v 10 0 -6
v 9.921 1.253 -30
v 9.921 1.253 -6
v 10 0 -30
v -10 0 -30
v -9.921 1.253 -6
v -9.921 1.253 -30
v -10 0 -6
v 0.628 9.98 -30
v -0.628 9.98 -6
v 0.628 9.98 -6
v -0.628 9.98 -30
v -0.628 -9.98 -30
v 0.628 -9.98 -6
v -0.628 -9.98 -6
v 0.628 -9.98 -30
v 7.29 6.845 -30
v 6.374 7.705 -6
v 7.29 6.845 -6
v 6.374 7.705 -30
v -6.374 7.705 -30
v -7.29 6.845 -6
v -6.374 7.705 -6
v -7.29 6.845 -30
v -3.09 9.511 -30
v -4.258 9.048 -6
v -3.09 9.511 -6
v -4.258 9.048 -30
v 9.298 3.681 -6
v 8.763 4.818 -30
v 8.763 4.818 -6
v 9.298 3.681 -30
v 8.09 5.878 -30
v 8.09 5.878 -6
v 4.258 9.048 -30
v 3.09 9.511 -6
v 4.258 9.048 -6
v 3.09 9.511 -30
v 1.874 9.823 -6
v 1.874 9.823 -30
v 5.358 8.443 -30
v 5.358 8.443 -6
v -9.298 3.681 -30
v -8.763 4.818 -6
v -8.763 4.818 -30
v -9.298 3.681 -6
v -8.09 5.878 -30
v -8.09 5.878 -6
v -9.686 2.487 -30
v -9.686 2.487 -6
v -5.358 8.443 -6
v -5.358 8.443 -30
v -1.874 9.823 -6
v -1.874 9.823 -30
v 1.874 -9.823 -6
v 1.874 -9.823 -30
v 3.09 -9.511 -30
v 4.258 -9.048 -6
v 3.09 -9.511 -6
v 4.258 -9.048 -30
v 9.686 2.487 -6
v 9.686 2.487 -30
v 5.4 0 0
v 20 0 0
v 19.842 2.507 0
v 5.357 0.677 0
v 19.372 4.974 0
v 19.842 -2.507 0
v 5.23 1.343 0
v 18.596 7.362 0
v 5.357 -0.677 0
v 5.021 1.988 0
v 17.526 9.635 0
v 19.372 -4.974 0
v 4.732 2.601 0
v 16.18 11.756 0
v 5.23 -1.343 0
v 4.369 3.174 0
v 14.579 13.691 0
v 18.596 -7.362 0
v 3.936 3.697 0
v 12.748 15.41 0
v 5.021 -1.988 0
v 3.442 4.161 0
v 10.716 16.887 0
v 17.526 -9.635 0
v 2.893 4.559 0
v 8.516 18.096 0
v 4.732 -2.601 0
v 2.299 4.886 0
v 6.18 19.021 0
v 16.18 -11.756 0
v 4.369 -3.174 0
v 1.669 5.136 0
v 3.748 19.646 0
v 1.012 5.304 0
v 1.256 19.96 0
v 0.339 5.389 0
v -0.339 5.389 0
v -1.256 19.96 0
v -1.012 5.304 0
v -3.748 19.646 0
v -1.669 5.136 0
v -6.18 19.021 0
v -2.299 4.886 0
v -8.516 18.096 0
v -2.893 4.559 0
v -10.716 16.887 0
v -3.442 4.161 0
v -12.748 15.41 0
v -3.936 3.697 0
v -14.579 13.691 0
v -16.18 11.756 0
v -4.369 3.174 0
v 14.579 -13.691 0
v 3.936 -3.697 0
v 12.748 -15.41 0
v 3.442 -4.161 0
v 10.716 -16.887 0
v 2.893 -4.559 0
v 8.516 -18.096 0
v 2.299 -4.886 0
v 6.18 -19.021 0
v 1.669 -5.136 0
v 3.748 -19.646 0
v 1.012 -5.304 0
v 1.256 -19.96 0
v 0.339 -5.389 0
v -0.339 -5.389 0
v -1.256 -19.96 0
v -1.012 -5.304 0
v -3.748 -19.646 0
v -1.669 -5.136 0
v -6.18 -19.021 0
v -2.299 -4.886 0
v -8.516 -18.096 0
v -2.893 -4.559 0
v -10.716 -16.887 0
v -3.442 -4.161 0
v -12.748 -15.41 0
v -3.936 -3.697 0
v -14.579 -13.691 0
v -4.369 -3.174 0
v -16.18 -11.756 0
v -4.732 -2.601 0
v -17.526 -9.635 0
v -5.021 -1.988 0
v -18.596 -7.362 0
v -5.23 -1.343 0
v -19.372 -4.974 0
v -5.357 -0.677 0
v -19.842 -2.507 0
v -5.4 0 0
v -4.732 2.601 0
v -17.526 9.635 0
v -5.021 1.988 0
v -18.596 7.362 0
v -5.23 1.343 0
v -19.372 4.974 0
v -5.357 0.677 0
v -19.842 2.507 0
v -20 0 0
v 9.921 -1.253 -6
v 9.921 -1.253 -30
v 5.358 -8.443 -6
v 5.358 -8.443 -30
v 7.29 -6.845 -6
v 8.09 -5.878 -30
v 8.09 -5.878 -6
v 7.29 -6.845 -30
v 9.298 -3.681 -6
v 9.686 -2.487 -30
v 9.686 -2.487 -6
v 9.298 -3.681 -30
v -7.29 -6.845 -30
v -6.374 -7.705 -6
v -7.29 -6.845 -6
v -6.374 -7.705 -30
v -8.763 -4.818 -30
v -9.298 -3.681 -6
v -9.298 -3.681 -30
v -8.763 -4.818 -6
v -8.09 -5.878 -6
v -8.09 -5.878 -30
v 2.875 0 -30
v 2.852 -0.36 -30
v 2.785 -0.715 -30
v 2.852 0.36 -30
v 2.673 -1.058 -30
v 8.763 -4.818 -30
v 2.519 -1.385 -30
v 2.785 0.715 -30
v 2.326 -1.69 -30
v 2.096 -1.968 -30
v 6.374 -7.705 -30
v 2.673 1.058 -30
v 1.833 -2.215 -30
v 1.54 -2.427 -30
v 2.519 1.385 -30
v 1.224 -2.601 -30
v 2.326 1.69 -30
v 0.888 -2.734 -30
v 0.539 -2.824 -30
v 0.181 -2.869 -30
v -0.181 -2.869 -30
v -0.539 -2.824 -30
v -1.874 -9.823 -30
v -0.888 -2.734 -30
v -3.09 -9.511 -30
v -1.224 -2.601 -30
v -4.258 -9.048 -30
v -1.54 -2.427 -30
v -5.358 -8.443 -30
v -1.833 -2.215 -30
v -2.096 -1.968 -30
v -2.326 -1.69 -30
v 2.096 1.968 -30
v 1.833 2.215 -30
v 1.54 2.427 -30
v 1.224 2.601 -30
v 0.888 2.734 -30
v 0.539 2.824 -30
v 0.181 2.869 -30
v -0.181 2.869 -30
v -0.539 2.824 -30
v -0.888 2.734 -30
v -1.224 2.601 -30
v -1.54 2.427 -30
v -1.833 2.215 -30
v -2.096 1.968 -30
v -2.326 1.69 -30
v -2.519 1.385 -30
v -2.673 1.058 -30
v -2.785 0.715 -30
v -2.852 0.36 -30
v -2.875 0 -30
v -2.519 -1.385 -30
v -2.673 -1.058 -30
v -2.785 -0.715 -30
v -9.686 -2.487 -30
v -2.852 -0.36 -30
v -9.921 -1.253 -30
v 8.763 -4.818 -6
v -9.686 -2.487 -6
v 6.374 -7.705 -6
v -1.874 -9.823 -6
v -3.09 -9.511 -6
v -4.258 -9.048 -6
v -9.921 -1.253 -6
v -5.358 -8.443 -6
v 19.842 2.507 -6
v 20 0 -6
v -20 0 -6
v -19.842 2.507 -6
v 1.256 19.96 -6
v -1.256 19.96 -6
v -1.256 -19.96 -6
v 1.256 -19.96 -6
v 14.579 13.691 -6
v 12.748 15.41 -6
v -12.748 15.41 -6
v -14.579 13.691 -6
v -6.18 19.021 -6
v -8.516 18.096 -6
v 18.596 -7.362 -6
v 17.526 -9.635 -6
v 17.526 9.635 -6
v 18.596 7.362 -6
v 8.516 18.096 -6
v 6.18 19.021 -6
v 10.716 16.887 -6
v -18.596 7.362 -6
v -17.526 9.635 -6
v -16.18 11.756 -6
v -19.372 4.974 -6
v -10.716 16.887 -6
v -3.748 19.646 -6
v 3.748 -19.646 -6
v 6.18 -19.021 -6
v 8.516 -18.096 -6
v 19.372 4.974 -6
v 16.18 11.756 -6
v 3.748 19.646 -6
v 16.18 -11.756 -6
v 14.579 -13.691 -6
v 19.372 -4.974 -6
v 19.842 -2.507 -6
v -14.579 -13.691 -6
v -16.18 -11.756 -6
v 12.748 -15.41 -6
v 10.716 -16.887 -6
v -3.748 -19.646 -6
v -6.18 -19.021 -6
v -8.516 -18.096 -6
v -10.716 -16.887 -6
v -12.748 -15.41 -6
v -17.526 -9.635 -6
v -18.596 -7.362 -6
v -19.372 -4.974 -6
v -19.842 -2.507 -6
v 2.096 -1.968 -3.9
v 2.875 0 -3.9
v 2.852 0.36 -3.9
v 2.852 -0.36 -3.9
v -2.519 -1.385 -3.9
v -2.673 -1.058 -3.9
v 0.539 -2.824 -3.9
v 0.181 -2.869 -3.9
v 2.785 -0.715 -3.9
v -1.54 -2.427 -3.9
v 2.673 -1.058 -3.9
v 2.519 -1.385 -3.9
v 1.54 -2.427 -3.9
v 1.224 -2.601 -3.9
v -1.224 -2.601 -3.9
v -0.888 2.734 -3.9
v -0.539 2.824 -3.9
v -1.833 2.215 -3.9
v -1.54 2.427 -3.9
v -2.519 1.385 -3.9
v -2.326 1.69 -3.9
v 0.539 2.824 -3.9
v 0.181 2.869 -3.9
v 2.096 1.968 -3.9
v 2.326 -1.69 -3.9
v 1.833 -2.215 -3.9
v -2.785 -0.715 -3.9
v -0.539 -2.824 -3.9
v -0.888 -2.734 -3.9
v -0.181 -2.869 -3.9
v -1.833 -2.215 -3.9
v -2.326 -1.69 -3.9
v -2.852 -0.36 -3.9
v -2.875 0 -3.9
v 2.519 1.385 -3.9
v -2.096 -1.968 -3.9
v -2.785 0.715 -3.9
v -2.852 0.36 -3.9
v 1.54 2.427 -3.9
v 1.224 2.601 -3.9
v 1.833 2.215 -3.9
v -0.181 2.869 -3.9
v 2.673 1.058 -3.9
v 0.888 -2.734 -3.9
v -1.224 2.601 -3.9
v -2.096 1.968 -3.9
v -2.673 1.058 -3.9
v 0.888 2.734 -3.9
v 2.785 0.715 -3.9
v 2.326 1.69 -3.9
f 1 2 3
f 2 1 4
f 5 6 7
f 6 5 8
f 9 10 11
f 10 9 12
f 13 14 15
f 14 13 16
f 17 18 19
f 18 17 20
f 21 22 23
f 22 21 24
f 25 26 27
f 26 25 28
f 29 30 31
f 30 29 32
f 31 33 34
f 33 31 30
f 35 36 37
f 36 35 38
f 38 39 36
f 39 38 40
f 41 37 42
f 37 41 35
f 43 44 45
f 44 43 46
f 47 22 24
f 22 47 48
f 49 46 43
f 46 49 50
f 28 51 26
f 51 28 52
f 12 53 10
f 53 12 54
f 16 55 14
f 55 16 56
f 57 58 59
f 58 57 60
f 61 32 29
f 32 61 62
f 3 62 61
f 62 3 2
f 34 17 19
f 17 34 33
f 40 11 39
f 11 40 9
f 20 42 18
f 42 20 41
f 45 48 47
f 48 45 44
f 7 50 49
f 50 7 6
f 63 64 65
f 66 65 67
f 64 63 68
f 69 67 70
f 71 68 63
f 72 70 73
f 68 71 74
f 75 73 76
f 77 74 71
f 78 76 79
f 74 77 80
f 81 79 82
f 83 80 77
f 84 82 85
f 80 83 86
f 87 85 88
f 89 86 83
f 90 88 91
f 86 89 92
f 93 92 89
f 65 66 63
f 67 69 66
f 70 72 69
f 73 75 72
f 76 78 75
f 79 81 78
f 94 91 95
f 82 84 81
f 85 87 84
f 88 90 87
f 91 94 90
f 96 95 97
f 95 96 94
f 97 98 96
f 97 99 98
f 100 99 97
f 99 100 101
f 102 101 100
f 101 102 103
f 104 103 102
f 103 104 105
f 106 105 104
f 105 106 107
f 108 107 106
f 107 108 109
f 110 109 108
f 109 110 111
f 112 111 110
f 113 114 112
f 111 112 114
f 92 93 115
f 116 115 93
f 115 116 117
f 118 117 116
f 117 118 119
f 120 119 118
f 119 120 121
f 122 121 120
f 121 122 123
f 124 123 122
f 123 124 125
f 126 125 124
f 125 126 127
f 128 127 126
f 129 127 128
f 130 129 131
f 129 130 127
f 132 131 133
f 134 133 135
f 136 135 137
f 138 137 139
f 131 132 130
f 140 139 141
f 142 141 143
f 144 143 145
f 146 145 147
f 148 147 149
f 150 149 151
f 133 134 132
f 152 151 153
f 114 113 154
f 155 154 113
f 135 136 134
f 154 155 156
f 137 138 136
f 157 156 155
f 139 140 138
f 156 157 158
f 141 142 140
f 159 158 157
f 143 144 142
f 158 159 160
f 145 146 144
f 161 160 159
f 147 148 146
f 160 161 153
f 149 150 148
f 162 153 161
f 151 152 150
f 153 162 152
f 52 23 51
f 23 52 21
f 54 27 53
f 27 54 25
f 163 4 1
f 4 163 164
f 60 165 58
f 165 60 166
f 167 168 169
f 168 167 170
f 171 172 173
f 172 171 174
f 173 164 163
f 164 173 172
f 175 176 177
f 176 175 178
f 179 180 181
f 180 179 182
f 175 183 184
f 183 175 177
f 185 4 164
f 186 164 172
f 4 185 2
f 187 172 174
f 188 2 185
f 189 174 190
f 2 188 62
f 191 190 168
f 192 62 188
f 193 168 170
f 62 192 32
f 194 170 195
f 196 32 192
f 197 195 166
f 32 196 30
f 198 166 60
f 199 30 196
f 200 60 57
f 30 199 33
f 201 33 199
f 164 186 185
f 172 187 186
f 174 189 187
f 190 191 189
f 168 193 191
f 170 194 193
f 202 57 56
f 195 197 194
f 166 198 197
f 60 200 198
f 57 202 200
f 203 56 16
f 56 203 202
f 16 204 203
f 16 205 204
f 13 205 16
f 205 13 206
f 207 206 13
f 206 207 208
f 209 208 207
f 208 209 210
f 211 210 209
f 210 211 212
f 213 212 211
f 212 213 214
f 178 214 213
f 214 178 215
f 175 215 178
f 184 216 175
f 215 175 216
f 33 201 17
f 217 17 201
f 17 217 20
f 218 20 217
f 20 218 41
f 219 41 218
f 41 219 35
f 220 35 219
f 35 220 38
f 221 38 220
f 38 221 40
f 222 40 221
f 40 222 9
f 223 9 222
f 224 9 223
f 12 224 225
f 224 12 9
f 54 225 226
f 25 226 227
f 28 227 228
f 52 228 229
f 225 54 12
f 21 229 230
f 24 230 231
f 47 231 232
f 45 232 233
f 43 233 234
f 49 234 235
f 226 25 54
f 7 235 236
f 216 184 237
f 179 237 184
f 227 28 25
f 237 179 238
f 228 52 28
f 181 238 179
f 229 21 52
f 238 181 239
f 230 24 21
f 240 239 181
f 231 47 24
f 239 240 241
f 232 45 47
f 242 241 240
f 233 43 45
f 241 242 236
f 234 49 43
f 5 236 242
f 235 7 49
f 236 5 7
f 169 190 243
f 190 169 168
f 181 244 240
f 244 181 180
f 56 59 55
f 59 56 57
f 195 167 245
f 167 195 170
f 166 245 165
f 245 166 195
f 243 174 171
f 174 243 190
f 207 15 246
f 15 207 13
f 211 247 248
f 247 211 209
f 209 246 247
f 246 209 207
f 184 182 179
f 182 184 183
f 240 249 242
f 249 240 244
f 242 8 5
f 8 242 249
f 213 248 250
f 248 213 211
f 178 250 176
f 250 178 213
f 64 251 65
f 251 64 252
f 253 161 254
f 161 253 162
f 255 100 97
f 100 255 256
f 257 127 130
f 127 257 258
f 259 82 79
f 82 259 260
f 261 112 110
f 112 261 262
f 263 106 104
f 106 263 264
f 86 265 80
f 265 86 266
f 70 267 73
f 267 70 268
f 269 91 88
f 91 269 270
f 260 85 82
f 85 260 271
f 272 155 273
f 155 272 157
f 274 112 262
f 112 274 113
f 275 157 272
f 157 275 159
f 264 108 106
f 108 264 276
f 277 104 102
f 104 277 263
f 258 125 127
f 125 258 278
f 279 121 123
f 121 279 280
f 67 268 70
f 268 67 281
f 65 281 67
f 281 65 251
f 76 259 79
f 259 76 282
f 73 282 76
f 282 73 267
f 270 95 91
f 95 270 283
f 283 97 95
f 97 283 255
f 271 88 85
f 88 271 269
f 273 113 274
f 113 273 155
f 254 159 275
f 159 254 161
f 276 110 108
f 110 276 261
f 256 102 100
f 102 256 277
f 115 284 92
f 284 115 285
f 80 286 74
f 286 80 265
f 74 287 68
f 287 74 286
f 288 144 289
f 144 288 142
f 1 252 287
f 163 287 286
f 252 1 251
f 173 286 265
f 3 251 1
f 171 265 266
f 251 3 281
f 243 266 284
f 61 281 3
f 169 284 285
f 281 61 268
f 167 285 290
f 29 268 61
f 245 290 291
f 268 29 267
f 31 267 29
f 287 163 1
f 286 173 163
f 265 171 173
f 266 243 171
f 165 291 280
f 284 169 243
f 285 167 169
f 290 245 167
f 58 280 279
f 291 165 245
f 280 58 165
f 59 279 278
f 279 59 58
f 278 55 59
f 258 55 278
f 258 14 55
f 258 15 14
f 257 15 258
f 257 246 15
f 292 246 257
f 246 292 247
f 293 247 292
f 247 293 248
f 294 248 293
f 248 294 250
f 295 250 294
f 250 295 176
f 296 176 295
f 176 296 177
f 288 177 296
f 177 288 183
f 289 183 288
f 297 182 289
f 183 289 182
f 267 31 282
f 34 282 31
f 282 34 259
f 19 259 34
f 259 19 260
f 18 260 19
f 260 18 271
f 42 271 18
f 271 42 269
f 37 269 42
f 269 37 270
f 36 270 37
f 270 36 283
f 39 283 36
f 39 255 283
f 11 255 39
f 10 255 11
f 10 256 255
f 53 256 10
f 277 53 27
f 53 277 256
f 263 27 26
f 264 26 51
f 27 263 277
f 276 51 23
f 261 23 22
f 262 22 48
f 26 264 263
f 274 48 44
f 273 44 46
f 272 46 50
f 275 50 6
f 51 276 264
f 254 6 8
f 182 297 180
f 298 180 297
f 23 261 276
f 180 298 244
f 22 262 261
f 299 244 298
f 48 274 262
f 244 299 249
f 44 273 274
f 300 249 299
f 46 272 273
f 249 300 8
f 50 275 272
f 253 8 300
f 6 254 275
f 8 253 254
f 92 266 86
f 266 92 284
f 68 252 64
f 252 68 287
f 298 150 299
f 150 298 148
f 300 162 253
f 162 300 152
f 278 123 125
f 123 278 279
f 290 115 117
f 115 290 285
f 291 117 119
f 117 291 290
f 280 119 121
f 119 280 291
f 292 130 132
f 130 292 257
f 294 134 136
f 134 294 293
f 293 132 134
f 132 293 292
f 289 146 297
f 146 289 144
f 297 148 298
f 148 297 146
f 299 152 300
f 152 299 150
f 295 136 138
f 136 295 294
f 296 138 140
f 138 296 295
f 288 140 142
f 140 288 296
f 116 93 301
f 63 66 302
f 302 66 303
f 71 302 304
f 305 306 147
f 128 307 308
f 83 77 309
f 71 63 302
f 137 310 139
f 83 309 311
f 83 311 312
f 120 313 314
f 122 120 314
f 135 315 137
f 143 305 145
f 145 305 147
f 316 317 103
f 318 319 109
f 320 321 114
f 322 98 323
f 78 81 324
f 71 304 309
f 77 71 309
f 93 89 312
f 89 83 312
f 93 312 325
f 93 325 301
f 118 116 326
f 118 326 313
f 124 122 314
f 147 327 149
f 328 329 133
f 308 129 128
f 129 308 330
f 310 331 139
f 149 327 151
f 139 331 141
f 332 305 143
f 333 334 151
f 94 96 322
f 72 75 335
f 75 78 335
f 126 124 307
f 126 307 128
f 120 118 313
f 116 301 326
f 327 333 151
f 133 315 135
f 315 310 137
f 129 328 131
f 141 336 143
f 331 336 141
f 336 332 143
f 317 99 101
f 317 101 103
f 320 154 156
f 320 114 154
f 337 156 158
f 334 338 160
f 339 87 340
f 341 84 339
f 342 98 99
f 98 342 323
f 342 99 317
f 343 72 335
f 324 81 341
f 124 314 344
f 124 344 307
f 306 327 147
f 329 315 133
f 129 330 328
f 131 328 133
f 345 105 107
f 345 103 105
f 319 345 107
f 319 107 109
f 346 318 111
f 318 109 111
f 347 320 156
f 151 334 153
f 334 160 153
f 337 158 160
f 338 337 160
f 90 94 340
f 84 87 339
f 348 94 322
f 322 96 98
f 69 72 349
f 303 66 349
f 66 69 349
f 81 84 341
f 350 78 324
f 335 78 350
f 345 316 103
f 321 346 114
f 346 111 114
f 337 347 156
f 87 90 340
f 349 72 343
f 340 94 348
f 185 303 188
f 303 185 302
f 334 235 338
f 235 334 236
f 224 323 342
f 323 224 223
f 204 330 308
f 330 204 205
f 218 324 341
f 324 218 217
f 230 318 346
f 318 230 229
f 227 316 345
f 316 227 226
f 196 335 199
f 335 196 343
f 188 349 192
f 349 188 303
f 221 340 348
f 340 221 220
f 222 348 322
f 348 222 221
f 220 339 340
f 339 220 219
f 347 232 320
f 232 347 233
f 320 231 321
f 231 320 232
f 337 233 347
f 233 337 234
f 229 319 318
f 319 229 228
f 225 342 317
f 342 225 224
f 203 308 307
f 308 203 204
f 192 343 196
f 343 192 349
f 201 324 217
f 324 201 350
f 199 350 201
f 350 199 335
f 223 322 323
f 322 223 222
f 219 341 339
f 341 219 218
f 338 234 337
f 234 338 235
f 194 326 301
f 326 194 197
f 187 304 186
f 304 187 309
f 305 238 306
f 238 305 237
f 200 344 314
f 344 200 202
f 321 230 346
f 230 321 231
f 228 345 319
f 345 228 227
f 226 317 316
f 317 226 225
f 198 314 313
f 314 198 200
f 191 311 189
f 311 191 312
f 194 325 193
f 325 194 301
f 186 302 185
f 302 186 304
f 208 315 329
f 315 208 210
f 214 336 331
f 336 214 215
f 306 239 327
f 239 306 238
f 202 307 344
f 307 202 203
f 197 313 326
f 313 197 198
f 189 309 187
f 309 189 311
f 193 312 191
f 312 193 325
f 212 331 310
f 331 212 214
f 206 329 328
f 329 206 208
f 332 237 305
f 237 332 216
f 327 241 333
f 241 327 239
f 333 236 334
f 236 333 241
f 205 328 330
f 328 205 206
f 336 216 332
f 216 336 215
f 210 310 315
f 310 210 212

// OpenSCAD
$fn = 50;


difference() {
	union() {
		translate(v = [0, 0, -30.0000000000]) {
			cylinder(h = 30, r = 10.0000000000);
		}
		translate(v = [0, 0, -6.0000000000]) {
			cylinder(h = 6, r = 20.0000000000);
		}
	}
	union() {
		translate(v = [0, 0, 0]) {
			rotate(a = [0, 0, 0]) {
				difference() {
					union() {
						#translate(v = [0, 0, -30.0000000000]) {
							cylinder(h = 30, r = 2.6000000000);
						}
						#translate(v = [0, 0, -3.9000000000]) {
							cylinder(h = 3.9000000000, r1 = 2.8750000000, r2 = 5.4000000000);
						}
						#translate(v = [0, 0, -30.0000000000]) {
							cylinder(h = 30, r = 2.8750000000);
						}
						#translate(v = [0, 0, -30.0000000000]) {
							cylinder(h = 30, r = 2.6000000000);
						}
					}
					union();
				}
			}
		}
	}
}
